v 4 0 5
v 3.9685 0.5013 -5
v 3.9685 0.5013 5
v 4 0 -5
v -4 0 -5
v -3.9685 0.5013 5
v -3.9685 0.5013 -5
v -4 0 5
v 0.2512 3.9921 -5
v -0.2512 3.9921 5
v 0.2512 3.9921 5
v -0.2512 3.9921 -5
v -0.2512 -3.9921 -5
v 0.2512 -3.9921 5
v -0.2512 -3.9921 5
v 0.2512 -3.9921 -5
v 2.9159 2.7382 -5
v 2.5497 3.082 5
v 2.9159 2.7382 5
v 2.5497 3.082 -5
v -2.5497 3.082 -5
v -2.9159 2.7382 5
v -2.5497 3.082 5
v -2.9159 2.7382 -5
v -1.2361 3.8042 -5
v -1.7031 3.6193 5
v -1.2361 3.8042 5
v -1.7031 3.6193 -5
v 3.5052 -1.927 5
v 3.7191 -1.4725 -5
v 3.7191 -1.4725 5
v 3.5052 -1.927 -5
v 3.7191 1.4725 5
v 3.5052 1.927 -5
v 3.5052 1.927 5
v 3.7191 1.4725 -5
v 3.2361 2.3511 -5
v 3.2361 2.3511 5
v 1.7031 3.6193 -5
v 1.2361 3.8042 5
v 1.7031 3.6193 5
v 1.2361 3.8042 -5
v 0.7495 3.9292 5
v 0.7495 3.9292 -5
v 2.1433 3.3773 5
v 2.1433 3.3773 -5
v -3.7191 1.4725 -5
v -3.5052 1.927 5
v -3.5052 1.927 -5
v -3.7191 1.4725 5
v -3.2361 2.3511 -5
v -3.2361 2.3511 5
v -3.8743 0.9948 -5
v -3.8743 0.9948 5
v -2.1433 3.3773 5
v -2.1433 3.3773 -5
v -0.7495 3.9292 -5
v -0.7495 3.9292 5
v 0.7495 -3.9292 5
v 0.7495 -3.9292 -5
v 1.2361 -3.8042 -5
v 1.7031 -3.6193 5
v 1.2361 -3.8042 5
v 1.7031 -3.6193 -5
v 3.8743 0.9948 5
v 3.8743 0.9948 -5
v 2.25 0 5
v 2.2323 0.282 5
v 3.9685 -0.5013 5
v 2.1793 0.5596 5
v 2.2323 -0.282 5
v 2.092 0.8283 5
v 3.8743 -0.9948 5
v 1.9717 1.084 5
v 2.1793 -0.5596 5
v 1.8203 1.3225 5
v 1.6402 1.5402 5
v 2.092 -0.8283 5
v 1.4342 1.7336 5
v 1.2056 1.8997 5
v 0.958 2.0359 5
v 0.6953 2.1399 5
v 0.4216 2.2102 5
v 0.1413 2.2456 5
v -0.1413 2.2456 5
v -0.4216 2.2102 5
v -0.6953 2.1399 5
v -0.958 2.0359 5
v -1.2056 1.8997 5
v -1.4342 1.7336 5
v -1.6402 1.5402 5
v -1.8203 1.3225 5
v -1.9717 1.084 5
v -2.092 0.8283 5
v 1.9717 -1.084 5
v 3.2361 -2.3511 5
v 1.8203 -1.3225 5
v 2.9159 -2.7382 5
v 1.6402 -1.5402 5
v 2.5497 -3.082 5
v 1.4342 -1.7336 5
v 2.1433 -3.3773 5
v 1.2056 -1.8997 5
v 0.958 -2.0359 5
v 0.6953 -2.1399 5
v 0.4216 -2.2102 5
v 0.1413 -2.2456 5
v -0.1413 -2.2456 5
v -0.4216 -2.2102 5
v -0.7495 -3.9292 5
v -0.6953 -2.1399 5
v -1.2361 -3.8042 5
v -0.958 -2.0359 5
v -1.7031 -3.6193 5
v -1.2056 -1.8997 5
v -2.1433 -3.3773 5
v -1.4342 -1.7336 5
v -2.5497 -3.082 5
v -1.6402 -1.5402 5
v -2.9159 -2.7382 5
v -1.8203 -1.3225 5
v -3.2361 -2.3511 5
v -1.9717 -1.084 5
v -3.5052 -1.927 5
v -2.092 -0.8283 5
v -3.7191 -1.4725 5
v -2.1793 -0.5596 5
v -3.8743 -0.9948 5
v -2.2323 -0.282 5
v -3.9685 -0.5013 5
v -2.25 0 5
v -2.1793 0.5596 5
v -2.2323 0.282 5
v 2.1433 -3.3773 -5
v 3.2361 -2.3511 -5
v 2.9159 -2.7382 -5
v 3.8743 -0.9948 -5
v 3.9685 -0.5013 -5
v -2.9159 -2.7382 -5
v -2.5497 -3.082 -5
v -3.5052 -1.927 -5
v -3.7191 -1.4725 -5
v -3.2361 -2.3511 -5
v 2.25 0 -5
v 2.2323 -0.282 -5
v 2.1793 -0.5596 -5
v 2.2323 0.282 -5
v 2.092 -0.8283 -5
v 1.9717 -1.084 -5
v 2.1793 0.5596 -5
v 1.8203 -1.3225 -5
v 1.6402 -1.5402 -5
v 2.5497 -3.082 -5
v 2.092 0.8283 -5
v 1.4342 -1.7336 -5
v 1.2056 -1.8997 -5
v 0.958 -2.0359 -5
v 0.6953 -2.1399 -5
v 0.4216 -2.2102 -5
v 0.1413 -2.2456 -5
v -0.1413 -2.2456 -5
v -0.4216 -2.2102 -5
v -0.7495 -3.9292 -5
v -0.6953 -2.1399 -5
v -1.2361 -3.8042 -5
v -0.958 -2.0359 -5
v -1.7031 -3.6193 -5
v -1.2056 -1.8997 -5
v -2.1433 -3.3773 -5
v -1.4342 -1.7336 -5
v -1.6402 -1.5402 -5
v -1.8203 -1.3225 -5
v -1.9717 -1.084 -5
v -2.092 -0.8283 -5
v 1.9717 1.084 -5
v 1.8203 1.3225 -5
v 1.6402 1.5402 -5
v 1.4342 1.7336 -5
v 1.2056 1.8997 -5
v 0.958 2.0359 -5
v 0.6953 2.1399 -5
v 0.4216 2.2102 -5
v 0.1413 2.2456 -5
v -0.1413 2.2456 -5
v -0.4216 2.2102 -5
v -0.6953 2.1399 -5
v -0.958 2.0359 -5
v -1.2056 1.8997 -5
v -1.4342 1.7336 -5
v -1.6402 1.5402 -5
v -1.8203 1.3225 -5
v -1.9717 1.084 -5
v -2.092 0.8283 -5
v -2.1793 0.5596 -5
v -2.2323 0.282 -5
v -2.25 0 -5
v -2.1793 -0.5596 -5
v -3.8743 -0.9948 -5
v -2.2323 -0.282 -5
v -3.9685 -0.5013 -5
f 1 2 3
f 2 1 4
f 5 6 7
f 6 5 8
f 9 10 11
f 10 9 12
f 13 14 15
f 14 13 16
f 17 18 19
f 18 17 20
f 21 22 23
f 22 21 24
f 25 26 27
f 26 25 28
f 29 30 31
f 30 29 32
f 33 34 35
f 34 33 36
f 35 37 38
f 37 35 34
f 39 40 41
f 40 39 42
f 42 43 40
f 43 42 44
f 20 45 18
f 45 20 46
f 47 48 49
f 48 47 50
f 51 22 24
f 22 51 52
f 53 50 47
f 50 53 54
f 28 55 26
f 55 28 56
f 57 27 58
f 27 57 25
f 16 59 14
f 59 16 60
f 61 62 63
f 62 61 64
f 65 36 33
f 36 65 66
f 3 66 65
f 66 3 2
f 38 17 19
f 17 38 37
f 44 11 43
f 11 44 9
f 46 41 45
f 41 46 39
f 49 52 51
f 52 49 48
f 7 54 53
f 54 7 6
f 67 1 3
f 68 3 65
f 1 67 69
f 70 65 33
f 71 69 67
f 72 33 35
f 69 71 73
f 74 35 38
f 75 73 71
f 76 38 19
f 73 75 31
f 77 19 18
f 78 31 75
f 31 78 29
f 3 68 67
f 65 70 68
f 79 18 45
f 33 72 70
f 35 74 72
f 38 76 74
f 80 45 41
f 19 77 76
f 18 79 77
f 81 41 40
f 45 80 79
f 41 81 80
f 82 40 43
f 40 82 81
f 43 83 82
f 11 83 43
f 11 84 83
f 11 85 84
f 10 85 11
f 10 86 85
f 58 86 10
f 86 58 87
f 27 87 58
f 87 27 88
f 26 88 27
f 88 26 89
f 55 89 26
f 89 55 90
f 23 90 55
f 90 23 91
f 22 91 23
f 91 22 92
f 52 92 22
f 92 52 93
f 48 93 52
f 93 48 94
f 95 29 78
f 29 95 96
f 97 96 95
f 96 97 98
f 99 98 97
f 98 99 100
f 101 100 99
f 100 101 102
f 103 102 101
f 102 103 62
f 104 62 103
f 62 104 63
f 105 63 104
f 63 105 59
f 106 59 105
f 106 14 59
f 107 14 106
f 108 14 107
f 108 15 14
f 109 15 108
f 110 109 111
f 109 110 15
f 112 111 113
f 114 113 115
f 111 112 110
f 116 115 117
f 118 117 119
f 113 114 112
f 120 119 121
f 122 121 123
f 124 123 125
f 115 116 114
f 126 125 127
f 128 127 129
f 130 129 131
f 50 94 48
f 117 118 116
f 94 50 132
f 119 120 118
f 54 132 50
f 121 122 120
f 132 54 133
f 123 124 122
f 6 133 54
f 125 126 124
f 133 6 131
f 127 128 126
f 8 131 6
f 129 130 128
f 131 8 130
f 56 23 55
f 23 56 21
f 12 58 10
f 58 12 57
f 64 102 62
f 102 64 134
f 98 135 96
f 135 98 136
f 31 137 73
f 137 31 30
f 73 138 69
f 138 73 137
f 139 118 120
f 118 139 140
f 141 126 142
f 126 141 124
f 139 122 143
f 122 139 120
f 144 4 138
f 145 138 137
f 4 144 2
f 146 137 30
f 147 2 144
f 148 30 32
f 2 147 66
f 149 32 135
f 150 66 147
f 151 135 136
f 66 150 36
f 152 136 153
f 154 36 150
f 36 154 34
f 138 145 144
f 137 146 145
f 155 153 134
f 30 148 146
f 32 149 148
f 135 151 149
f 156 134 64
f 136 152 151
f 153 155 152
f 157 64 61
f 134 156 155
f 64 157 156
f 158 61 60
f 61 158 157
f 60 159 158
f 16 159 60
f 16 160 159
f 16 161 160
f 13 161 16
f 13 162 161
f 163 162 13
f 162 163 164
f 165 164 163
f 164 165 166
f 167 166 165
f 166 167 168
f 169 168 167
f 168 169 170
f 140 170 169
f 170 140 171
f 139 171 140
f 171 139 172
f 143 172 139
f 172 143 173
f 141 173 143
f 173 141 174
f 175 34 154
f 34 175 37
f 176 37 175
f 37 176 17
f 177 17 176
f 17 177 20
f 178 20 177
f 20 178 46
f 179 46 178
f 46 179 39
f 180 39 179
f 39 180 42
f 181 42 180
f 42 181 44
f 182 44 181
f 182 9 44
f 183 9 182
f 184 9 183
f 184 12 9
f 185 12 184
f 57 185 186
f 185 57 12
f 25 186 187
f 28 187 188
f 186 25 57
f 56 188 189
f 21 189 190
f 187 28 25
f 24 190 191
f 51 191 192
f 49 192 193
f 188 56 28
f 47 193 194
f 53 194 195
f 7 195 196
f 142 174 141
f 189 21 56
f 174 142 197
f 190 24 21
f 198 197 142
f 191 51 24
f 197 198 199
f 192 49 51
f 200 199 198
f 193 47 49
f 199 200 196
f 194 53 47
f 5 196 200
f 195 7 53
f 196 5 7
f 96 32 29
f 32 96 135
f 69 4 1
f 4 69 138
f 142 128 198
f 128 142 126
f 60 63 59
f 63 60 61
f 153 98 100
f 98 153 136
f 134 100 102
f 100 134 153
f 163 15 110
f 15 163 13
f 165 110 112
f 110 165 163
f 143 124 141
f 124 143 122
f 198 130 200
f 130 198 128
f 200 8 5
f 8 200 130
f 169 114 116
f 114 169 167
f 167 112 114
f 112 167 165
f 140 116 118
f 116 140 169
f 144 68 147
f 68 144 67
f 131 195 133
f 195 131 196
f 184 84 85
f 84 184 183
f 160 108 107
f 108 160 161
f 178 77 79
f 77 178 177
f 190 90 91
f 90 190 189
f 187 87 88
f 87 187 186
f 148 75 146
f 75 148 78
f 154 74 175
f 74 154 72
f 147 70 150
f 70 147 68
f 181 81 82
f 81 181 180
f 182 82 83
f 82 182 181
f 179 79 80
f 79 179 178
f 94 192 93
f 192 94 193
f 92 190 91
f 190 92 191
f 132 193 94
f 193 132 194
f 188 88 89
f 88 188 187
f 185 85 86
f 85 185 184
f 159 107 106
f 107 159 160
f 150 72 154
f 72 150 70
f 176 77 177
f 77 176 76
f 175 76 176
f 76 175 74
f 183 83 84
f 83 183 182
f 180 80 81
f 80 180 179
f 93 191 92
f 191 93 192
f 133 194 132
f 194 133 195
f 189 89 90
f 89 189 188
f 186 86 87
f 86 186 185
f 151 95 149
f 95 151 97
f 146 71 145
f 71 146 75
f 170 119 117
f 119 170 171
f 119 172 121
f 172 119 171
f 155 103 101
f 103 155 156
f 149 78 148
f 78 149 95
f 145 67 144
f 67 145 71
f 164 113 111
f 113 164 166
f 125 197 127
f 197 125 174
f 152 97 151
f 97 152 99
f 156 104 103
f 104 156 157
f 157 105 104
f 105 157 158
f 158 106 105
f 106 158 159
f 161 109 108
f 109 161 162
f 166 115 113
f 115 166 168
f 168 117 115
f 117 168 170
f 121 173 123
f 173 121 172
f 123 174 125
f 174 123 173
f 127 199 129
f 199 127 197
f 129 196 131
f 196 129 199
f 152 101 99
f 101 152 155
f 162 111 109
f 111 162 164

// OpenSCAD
$fn = 50;


difference() {
	union() {
		translate(v = [0, 0, -5.0000000000]) {
			cylinder(h = 10, r = 4.0000000000);
		}
	}
	union() {
		translate(v = [0, 0, -100.0000000000]) {
			cylinder(h = 200, r = 2.2500000000);
		}
	}
}
